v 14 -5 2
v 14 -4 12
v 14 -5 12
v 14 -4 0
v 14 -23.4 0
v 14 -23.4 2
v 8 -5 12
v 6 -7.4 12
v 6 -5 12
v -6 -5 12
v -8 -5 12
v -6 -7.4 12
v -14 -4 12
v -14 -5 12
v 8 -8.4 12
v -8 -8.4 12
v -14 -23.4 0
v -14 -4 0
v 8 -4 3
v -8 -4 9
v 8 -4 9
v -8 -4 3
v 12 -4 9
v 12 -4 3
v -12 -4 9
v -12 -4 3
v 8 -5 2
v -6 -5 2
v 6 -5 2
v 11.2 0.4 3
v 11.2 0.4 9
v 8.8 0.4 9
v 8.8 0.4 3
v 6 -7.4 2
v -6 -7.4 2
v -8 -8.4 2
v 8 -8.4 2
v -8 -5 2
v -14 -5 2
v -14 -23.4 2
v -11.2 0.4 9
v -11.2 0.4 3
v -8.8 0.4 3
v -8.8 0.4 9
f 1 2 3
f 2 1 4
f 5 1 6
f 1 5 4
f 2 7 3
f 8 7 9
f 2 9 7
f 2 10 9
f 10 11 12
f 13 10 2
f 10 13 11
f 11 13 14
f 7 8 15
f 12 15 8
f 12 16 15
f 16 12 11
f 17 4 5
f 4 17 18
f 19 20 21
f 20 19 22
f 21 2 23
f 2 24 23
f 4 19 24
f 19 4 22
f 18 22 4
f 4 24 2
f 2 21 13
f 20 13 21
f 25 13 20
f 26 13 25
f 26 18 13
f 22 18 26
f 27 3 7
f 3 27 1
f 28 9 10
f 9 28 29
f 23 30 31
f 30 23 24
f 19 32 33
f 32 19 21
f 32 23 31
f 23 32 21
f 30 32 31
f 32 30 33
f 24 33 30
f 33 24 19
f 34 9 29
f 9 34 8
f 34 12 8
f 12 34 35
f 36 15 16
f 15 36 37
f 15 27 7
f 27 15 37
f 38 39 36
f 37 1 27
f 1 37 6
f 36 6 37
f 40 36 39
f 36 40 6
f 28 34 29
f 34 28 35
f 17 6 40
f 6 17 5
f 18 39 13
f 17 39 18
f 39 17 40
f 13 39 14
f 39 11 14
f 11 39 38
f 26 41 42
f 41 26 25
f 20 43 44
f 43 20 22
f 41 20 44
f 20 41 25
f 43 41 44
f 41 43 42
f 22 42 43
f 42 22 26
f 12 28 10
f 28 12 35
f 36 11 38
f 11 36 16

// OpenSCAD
//Box closer
INSIDE_LENGTH = 117;
WALL_WIDTH = 2;
MAGNET_DIA_REAL = 10;
MAGNET_WIDTH_REAL = 2;
BELT_HEIGHT = 12; //should be bigger than magnet dia

SAFETY_FACTOR_FOR_MAGNET = 1.2;

MAGNET_DIA = MAGNET_DIA_REAL * SAFETY_FACTOR_FOR_MAGNET;
MAGNET_WIDTH = MAGNET_WIDTH_REAL * SAFETY_FACTOR_FOR_MAGNET;

PLUS = 15;

passingHalf();
mirror([1,0,0])passingHalf();
module passingHalf()
{
	START = -5;
	translate([0, START, 0])cube([MAGNET_DIA/2+4*WALL_WIDTH, WALL_WIDTH/2, BELT_HEIGHT]);
	translate([MAGNET_DIA/2+WALL_WIDTH,START+WALL_WIDTH/2, BELT_HEIGHT/4])linear_extrude(BELT_HEIGHT/2)polygon([[0,0], [WALL_WIDTH*0.4,WALL_WIDTH+MAGNET_WIDTH], [1.6*WALL_WIDTH, WALL_WIDTH+MAGNET_WIDTH], [2*WALL_WIDTH, 0]]);
	translate([0,START-MAGNET_WIDTH-WALL_WIDTH/2,0])cube([MAGNET_DIA/2,WALL_WIDTH/2,BELT_HEIGHT]);
	translate([MAGNET_DIA/2,START-MAGNET_WIDTH-WALL_WIDTH/2,0])cube([WALL_WIDTH,MAGNET_WIDTH+WALL_WIDTH/2, BELT_HEIGHT]);
	
	//magnetholder under part
	translate([0,START-MAGNET_WIDTH-WALL_WIDTH/2-PLUS,0])cube([MAGNET_DIA/2+4*WALL_WIDTH, WALL_WIDTH*2+PLUS, WALL_WIDTH]);
}
